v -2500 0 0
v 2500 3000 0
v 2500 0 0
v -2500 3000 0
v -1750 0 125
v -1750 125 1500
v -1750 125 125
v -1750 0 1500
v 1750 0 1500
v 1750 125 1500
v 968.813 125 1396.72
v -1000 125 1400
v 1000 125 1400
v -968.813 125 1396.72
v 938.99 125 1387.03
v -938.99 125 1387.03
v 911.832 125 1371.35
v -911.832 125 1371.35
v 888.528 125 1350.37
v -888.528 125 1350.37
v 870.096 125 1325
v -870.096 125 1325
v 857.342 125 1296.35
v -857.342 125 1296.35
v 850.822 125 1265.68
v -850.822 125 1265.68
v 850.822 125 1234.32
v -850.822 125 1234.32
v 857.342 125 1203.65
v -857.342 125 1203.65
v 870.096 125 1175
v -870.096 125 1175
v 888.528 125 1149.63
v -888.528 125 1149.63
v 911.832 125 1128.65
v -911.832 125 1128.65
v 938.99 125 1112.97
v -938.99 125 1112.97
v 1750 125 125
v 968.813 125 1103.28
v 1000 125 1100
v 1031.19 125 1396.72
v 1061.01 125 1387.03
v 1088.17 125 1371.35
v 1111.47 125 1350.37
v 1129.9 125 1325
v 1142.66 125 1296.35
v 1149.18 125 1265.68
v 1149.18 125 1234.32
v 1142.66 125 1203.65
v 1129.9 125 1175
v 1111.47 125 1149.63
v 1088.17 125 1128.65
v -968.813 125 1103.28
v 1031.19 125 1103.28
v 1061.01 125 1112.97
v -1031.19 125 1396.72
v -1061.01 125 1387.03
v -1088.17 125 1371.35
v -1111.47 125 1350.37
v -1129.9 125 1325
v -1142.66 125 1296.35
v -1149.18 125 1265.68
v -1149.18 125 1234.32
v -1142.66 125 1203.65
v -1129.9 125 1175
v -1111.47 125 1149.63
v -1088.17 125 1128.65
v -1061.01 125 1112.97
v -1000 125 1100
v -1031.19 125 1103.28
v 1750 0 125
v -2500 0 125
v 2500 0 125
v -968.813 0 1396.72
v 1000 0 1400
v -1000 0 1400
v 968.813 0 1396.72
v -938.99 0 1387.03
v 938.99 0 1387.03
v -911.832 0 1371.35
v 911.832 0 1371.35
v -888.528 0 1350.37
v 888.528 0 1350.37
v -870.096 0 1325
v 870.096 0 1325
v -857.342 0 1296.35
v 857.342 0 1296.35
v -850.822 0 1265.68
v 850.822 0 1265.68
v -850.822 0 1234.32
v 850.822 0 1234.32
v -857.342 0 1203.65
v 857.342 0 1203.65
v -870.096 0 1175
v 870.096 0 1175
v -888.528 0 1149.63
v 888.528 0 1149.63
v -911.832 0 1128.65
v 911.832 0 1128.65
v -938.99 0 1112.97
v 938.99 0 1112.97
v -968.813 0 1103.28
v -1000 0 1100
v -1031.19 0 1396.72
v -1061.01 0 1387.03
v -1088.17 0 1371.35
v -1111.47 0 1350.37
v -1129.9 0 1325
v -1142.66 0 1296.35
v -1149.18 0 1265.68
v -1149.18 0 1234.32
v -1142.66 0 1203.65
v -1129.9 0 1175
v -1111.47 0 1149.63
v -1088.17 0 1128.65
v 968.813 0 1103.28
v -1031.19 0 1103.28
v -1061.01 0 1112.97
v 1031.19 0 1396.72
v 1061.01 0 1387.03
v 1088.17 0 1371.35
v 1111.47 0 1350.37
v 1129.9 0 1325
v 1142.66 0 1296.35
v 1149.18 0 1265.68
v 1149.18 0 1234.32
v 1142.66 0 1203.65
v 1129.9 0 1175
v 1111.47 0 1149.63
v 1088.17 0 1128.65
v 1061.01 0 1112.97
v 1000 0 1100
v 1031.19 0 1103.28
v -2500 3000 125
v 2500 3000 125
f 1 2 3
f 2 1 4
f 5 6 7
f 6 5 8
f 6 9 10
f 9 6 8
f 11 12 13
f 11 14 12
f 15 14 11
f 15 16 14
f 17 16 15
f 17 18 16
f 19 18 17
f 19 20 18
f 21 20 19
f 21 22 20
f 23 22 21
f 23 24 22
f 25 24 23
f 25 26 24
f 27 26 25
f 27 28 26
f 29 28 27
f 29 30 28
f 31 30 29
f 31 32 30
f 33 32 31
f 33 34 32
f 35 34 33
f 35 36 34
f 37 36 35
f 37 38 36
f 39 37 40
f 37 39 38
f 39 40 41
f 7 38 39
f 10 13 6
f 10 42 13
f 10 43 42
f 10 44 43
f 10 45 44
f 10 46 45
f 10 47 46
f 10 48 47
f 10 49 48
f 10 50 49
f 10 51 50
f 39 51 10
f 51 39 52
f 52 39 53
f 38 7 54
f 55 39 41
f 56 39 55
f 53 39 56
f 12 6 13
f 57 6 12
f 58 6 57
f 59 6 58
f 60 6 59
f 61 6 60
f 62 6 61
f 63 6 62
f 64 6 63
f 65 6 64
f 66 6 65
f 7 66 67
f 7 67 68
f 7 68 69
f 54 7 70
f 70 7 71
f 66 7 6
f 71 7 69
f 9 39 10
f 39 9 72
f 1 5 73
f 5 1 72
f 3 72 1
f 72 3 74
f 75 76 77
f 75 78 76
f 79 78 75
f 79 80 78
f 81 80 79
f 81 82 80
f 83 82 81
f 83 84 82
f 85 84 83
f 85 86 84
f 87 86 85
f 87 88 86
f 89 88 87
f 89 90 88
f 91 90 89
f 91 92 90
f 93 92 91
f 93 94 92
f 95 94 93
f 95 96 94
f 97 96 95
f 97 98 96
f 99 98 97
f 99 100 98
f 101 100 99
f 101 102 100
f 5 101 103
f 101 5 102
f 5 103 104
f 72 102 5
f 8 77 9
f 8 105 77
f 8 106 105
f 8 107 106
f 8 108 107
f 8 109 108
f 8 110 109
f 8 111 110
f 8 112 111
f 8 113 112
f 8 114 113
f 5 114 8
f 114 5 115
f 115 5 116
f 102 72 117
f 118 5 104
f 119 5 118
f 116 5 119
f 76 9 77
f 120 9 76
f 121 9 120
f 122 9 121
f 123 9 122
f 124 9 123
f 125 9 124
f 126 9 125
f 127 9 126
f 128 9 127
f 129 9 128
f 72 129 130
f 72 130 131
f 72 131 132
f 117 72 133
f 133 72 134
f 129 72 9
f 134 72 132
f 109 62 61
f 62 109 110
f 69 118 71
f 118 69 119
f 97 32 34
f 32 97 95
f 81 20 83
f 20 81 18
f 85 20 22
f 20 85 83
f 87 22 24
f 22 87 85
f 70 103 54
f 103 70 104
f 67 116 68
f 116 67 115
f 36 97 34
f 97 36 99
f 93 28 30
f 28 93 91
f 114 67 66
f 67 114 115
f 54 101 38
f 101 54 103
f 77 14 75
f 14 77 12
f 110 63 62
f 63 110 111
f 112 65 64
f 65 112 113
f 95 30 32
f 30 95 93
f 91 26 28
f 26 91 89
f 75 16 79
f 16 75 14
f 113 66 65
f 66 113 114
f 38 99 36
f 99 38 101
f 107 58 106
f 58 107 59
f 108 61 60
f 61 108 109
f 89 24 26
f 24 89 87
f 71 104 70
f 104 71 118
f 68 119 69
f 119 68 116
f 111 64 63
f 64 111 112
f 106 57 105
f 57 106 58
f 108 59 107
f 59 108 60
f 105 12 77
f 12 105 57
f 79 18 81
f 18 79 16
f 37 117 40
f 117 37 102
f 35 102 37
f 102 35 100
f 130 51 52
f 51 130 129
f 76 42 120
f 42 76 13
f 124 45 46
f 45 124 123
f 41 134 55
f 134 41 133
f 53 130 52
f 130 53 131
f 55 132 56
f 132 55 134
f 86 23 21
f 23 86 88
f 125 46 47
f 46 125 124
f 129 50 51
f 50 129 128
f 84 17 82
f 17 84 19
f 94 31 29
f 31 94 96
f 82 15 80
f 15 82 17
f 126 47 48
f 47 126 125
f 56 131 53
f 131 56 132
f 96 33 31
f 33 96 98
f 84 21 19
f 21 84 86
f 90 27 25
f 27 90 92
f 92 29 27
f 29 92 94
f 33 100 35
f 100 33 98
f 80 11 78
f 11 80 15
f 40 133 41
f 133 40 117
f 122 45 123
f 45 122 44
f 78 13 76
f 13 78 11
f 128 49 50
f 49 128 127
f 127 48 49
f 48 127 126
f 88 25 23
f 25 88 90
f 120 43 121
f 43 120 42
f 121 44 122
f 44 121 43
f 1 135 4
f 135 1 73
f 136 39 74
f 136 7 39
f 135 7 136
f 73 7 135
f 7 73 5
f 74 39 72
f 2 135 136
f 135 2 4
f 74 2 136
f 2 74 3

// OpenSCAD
echo(version=version());

difference() {
    color("yellow")
        translate([0, 125/2, 0])
            linear_extrude(height = 1500)
                square([3500, 125 ], center = true);
    color("blue")
        translate([-1000, 125, 1250])
            rotate([90, 90, 0])
                cylinder(h=500, r=150, center=true);
    color("blue")
        translate([1000, 125, 1250])
            rotate([90, 90, 0])
                cylinder(h=500, r=150, center=true);
}

color("red")
    translate([0,1500,0])
        linear_extrude(height = 125)
            square([5000, 3000], center = true);
            
